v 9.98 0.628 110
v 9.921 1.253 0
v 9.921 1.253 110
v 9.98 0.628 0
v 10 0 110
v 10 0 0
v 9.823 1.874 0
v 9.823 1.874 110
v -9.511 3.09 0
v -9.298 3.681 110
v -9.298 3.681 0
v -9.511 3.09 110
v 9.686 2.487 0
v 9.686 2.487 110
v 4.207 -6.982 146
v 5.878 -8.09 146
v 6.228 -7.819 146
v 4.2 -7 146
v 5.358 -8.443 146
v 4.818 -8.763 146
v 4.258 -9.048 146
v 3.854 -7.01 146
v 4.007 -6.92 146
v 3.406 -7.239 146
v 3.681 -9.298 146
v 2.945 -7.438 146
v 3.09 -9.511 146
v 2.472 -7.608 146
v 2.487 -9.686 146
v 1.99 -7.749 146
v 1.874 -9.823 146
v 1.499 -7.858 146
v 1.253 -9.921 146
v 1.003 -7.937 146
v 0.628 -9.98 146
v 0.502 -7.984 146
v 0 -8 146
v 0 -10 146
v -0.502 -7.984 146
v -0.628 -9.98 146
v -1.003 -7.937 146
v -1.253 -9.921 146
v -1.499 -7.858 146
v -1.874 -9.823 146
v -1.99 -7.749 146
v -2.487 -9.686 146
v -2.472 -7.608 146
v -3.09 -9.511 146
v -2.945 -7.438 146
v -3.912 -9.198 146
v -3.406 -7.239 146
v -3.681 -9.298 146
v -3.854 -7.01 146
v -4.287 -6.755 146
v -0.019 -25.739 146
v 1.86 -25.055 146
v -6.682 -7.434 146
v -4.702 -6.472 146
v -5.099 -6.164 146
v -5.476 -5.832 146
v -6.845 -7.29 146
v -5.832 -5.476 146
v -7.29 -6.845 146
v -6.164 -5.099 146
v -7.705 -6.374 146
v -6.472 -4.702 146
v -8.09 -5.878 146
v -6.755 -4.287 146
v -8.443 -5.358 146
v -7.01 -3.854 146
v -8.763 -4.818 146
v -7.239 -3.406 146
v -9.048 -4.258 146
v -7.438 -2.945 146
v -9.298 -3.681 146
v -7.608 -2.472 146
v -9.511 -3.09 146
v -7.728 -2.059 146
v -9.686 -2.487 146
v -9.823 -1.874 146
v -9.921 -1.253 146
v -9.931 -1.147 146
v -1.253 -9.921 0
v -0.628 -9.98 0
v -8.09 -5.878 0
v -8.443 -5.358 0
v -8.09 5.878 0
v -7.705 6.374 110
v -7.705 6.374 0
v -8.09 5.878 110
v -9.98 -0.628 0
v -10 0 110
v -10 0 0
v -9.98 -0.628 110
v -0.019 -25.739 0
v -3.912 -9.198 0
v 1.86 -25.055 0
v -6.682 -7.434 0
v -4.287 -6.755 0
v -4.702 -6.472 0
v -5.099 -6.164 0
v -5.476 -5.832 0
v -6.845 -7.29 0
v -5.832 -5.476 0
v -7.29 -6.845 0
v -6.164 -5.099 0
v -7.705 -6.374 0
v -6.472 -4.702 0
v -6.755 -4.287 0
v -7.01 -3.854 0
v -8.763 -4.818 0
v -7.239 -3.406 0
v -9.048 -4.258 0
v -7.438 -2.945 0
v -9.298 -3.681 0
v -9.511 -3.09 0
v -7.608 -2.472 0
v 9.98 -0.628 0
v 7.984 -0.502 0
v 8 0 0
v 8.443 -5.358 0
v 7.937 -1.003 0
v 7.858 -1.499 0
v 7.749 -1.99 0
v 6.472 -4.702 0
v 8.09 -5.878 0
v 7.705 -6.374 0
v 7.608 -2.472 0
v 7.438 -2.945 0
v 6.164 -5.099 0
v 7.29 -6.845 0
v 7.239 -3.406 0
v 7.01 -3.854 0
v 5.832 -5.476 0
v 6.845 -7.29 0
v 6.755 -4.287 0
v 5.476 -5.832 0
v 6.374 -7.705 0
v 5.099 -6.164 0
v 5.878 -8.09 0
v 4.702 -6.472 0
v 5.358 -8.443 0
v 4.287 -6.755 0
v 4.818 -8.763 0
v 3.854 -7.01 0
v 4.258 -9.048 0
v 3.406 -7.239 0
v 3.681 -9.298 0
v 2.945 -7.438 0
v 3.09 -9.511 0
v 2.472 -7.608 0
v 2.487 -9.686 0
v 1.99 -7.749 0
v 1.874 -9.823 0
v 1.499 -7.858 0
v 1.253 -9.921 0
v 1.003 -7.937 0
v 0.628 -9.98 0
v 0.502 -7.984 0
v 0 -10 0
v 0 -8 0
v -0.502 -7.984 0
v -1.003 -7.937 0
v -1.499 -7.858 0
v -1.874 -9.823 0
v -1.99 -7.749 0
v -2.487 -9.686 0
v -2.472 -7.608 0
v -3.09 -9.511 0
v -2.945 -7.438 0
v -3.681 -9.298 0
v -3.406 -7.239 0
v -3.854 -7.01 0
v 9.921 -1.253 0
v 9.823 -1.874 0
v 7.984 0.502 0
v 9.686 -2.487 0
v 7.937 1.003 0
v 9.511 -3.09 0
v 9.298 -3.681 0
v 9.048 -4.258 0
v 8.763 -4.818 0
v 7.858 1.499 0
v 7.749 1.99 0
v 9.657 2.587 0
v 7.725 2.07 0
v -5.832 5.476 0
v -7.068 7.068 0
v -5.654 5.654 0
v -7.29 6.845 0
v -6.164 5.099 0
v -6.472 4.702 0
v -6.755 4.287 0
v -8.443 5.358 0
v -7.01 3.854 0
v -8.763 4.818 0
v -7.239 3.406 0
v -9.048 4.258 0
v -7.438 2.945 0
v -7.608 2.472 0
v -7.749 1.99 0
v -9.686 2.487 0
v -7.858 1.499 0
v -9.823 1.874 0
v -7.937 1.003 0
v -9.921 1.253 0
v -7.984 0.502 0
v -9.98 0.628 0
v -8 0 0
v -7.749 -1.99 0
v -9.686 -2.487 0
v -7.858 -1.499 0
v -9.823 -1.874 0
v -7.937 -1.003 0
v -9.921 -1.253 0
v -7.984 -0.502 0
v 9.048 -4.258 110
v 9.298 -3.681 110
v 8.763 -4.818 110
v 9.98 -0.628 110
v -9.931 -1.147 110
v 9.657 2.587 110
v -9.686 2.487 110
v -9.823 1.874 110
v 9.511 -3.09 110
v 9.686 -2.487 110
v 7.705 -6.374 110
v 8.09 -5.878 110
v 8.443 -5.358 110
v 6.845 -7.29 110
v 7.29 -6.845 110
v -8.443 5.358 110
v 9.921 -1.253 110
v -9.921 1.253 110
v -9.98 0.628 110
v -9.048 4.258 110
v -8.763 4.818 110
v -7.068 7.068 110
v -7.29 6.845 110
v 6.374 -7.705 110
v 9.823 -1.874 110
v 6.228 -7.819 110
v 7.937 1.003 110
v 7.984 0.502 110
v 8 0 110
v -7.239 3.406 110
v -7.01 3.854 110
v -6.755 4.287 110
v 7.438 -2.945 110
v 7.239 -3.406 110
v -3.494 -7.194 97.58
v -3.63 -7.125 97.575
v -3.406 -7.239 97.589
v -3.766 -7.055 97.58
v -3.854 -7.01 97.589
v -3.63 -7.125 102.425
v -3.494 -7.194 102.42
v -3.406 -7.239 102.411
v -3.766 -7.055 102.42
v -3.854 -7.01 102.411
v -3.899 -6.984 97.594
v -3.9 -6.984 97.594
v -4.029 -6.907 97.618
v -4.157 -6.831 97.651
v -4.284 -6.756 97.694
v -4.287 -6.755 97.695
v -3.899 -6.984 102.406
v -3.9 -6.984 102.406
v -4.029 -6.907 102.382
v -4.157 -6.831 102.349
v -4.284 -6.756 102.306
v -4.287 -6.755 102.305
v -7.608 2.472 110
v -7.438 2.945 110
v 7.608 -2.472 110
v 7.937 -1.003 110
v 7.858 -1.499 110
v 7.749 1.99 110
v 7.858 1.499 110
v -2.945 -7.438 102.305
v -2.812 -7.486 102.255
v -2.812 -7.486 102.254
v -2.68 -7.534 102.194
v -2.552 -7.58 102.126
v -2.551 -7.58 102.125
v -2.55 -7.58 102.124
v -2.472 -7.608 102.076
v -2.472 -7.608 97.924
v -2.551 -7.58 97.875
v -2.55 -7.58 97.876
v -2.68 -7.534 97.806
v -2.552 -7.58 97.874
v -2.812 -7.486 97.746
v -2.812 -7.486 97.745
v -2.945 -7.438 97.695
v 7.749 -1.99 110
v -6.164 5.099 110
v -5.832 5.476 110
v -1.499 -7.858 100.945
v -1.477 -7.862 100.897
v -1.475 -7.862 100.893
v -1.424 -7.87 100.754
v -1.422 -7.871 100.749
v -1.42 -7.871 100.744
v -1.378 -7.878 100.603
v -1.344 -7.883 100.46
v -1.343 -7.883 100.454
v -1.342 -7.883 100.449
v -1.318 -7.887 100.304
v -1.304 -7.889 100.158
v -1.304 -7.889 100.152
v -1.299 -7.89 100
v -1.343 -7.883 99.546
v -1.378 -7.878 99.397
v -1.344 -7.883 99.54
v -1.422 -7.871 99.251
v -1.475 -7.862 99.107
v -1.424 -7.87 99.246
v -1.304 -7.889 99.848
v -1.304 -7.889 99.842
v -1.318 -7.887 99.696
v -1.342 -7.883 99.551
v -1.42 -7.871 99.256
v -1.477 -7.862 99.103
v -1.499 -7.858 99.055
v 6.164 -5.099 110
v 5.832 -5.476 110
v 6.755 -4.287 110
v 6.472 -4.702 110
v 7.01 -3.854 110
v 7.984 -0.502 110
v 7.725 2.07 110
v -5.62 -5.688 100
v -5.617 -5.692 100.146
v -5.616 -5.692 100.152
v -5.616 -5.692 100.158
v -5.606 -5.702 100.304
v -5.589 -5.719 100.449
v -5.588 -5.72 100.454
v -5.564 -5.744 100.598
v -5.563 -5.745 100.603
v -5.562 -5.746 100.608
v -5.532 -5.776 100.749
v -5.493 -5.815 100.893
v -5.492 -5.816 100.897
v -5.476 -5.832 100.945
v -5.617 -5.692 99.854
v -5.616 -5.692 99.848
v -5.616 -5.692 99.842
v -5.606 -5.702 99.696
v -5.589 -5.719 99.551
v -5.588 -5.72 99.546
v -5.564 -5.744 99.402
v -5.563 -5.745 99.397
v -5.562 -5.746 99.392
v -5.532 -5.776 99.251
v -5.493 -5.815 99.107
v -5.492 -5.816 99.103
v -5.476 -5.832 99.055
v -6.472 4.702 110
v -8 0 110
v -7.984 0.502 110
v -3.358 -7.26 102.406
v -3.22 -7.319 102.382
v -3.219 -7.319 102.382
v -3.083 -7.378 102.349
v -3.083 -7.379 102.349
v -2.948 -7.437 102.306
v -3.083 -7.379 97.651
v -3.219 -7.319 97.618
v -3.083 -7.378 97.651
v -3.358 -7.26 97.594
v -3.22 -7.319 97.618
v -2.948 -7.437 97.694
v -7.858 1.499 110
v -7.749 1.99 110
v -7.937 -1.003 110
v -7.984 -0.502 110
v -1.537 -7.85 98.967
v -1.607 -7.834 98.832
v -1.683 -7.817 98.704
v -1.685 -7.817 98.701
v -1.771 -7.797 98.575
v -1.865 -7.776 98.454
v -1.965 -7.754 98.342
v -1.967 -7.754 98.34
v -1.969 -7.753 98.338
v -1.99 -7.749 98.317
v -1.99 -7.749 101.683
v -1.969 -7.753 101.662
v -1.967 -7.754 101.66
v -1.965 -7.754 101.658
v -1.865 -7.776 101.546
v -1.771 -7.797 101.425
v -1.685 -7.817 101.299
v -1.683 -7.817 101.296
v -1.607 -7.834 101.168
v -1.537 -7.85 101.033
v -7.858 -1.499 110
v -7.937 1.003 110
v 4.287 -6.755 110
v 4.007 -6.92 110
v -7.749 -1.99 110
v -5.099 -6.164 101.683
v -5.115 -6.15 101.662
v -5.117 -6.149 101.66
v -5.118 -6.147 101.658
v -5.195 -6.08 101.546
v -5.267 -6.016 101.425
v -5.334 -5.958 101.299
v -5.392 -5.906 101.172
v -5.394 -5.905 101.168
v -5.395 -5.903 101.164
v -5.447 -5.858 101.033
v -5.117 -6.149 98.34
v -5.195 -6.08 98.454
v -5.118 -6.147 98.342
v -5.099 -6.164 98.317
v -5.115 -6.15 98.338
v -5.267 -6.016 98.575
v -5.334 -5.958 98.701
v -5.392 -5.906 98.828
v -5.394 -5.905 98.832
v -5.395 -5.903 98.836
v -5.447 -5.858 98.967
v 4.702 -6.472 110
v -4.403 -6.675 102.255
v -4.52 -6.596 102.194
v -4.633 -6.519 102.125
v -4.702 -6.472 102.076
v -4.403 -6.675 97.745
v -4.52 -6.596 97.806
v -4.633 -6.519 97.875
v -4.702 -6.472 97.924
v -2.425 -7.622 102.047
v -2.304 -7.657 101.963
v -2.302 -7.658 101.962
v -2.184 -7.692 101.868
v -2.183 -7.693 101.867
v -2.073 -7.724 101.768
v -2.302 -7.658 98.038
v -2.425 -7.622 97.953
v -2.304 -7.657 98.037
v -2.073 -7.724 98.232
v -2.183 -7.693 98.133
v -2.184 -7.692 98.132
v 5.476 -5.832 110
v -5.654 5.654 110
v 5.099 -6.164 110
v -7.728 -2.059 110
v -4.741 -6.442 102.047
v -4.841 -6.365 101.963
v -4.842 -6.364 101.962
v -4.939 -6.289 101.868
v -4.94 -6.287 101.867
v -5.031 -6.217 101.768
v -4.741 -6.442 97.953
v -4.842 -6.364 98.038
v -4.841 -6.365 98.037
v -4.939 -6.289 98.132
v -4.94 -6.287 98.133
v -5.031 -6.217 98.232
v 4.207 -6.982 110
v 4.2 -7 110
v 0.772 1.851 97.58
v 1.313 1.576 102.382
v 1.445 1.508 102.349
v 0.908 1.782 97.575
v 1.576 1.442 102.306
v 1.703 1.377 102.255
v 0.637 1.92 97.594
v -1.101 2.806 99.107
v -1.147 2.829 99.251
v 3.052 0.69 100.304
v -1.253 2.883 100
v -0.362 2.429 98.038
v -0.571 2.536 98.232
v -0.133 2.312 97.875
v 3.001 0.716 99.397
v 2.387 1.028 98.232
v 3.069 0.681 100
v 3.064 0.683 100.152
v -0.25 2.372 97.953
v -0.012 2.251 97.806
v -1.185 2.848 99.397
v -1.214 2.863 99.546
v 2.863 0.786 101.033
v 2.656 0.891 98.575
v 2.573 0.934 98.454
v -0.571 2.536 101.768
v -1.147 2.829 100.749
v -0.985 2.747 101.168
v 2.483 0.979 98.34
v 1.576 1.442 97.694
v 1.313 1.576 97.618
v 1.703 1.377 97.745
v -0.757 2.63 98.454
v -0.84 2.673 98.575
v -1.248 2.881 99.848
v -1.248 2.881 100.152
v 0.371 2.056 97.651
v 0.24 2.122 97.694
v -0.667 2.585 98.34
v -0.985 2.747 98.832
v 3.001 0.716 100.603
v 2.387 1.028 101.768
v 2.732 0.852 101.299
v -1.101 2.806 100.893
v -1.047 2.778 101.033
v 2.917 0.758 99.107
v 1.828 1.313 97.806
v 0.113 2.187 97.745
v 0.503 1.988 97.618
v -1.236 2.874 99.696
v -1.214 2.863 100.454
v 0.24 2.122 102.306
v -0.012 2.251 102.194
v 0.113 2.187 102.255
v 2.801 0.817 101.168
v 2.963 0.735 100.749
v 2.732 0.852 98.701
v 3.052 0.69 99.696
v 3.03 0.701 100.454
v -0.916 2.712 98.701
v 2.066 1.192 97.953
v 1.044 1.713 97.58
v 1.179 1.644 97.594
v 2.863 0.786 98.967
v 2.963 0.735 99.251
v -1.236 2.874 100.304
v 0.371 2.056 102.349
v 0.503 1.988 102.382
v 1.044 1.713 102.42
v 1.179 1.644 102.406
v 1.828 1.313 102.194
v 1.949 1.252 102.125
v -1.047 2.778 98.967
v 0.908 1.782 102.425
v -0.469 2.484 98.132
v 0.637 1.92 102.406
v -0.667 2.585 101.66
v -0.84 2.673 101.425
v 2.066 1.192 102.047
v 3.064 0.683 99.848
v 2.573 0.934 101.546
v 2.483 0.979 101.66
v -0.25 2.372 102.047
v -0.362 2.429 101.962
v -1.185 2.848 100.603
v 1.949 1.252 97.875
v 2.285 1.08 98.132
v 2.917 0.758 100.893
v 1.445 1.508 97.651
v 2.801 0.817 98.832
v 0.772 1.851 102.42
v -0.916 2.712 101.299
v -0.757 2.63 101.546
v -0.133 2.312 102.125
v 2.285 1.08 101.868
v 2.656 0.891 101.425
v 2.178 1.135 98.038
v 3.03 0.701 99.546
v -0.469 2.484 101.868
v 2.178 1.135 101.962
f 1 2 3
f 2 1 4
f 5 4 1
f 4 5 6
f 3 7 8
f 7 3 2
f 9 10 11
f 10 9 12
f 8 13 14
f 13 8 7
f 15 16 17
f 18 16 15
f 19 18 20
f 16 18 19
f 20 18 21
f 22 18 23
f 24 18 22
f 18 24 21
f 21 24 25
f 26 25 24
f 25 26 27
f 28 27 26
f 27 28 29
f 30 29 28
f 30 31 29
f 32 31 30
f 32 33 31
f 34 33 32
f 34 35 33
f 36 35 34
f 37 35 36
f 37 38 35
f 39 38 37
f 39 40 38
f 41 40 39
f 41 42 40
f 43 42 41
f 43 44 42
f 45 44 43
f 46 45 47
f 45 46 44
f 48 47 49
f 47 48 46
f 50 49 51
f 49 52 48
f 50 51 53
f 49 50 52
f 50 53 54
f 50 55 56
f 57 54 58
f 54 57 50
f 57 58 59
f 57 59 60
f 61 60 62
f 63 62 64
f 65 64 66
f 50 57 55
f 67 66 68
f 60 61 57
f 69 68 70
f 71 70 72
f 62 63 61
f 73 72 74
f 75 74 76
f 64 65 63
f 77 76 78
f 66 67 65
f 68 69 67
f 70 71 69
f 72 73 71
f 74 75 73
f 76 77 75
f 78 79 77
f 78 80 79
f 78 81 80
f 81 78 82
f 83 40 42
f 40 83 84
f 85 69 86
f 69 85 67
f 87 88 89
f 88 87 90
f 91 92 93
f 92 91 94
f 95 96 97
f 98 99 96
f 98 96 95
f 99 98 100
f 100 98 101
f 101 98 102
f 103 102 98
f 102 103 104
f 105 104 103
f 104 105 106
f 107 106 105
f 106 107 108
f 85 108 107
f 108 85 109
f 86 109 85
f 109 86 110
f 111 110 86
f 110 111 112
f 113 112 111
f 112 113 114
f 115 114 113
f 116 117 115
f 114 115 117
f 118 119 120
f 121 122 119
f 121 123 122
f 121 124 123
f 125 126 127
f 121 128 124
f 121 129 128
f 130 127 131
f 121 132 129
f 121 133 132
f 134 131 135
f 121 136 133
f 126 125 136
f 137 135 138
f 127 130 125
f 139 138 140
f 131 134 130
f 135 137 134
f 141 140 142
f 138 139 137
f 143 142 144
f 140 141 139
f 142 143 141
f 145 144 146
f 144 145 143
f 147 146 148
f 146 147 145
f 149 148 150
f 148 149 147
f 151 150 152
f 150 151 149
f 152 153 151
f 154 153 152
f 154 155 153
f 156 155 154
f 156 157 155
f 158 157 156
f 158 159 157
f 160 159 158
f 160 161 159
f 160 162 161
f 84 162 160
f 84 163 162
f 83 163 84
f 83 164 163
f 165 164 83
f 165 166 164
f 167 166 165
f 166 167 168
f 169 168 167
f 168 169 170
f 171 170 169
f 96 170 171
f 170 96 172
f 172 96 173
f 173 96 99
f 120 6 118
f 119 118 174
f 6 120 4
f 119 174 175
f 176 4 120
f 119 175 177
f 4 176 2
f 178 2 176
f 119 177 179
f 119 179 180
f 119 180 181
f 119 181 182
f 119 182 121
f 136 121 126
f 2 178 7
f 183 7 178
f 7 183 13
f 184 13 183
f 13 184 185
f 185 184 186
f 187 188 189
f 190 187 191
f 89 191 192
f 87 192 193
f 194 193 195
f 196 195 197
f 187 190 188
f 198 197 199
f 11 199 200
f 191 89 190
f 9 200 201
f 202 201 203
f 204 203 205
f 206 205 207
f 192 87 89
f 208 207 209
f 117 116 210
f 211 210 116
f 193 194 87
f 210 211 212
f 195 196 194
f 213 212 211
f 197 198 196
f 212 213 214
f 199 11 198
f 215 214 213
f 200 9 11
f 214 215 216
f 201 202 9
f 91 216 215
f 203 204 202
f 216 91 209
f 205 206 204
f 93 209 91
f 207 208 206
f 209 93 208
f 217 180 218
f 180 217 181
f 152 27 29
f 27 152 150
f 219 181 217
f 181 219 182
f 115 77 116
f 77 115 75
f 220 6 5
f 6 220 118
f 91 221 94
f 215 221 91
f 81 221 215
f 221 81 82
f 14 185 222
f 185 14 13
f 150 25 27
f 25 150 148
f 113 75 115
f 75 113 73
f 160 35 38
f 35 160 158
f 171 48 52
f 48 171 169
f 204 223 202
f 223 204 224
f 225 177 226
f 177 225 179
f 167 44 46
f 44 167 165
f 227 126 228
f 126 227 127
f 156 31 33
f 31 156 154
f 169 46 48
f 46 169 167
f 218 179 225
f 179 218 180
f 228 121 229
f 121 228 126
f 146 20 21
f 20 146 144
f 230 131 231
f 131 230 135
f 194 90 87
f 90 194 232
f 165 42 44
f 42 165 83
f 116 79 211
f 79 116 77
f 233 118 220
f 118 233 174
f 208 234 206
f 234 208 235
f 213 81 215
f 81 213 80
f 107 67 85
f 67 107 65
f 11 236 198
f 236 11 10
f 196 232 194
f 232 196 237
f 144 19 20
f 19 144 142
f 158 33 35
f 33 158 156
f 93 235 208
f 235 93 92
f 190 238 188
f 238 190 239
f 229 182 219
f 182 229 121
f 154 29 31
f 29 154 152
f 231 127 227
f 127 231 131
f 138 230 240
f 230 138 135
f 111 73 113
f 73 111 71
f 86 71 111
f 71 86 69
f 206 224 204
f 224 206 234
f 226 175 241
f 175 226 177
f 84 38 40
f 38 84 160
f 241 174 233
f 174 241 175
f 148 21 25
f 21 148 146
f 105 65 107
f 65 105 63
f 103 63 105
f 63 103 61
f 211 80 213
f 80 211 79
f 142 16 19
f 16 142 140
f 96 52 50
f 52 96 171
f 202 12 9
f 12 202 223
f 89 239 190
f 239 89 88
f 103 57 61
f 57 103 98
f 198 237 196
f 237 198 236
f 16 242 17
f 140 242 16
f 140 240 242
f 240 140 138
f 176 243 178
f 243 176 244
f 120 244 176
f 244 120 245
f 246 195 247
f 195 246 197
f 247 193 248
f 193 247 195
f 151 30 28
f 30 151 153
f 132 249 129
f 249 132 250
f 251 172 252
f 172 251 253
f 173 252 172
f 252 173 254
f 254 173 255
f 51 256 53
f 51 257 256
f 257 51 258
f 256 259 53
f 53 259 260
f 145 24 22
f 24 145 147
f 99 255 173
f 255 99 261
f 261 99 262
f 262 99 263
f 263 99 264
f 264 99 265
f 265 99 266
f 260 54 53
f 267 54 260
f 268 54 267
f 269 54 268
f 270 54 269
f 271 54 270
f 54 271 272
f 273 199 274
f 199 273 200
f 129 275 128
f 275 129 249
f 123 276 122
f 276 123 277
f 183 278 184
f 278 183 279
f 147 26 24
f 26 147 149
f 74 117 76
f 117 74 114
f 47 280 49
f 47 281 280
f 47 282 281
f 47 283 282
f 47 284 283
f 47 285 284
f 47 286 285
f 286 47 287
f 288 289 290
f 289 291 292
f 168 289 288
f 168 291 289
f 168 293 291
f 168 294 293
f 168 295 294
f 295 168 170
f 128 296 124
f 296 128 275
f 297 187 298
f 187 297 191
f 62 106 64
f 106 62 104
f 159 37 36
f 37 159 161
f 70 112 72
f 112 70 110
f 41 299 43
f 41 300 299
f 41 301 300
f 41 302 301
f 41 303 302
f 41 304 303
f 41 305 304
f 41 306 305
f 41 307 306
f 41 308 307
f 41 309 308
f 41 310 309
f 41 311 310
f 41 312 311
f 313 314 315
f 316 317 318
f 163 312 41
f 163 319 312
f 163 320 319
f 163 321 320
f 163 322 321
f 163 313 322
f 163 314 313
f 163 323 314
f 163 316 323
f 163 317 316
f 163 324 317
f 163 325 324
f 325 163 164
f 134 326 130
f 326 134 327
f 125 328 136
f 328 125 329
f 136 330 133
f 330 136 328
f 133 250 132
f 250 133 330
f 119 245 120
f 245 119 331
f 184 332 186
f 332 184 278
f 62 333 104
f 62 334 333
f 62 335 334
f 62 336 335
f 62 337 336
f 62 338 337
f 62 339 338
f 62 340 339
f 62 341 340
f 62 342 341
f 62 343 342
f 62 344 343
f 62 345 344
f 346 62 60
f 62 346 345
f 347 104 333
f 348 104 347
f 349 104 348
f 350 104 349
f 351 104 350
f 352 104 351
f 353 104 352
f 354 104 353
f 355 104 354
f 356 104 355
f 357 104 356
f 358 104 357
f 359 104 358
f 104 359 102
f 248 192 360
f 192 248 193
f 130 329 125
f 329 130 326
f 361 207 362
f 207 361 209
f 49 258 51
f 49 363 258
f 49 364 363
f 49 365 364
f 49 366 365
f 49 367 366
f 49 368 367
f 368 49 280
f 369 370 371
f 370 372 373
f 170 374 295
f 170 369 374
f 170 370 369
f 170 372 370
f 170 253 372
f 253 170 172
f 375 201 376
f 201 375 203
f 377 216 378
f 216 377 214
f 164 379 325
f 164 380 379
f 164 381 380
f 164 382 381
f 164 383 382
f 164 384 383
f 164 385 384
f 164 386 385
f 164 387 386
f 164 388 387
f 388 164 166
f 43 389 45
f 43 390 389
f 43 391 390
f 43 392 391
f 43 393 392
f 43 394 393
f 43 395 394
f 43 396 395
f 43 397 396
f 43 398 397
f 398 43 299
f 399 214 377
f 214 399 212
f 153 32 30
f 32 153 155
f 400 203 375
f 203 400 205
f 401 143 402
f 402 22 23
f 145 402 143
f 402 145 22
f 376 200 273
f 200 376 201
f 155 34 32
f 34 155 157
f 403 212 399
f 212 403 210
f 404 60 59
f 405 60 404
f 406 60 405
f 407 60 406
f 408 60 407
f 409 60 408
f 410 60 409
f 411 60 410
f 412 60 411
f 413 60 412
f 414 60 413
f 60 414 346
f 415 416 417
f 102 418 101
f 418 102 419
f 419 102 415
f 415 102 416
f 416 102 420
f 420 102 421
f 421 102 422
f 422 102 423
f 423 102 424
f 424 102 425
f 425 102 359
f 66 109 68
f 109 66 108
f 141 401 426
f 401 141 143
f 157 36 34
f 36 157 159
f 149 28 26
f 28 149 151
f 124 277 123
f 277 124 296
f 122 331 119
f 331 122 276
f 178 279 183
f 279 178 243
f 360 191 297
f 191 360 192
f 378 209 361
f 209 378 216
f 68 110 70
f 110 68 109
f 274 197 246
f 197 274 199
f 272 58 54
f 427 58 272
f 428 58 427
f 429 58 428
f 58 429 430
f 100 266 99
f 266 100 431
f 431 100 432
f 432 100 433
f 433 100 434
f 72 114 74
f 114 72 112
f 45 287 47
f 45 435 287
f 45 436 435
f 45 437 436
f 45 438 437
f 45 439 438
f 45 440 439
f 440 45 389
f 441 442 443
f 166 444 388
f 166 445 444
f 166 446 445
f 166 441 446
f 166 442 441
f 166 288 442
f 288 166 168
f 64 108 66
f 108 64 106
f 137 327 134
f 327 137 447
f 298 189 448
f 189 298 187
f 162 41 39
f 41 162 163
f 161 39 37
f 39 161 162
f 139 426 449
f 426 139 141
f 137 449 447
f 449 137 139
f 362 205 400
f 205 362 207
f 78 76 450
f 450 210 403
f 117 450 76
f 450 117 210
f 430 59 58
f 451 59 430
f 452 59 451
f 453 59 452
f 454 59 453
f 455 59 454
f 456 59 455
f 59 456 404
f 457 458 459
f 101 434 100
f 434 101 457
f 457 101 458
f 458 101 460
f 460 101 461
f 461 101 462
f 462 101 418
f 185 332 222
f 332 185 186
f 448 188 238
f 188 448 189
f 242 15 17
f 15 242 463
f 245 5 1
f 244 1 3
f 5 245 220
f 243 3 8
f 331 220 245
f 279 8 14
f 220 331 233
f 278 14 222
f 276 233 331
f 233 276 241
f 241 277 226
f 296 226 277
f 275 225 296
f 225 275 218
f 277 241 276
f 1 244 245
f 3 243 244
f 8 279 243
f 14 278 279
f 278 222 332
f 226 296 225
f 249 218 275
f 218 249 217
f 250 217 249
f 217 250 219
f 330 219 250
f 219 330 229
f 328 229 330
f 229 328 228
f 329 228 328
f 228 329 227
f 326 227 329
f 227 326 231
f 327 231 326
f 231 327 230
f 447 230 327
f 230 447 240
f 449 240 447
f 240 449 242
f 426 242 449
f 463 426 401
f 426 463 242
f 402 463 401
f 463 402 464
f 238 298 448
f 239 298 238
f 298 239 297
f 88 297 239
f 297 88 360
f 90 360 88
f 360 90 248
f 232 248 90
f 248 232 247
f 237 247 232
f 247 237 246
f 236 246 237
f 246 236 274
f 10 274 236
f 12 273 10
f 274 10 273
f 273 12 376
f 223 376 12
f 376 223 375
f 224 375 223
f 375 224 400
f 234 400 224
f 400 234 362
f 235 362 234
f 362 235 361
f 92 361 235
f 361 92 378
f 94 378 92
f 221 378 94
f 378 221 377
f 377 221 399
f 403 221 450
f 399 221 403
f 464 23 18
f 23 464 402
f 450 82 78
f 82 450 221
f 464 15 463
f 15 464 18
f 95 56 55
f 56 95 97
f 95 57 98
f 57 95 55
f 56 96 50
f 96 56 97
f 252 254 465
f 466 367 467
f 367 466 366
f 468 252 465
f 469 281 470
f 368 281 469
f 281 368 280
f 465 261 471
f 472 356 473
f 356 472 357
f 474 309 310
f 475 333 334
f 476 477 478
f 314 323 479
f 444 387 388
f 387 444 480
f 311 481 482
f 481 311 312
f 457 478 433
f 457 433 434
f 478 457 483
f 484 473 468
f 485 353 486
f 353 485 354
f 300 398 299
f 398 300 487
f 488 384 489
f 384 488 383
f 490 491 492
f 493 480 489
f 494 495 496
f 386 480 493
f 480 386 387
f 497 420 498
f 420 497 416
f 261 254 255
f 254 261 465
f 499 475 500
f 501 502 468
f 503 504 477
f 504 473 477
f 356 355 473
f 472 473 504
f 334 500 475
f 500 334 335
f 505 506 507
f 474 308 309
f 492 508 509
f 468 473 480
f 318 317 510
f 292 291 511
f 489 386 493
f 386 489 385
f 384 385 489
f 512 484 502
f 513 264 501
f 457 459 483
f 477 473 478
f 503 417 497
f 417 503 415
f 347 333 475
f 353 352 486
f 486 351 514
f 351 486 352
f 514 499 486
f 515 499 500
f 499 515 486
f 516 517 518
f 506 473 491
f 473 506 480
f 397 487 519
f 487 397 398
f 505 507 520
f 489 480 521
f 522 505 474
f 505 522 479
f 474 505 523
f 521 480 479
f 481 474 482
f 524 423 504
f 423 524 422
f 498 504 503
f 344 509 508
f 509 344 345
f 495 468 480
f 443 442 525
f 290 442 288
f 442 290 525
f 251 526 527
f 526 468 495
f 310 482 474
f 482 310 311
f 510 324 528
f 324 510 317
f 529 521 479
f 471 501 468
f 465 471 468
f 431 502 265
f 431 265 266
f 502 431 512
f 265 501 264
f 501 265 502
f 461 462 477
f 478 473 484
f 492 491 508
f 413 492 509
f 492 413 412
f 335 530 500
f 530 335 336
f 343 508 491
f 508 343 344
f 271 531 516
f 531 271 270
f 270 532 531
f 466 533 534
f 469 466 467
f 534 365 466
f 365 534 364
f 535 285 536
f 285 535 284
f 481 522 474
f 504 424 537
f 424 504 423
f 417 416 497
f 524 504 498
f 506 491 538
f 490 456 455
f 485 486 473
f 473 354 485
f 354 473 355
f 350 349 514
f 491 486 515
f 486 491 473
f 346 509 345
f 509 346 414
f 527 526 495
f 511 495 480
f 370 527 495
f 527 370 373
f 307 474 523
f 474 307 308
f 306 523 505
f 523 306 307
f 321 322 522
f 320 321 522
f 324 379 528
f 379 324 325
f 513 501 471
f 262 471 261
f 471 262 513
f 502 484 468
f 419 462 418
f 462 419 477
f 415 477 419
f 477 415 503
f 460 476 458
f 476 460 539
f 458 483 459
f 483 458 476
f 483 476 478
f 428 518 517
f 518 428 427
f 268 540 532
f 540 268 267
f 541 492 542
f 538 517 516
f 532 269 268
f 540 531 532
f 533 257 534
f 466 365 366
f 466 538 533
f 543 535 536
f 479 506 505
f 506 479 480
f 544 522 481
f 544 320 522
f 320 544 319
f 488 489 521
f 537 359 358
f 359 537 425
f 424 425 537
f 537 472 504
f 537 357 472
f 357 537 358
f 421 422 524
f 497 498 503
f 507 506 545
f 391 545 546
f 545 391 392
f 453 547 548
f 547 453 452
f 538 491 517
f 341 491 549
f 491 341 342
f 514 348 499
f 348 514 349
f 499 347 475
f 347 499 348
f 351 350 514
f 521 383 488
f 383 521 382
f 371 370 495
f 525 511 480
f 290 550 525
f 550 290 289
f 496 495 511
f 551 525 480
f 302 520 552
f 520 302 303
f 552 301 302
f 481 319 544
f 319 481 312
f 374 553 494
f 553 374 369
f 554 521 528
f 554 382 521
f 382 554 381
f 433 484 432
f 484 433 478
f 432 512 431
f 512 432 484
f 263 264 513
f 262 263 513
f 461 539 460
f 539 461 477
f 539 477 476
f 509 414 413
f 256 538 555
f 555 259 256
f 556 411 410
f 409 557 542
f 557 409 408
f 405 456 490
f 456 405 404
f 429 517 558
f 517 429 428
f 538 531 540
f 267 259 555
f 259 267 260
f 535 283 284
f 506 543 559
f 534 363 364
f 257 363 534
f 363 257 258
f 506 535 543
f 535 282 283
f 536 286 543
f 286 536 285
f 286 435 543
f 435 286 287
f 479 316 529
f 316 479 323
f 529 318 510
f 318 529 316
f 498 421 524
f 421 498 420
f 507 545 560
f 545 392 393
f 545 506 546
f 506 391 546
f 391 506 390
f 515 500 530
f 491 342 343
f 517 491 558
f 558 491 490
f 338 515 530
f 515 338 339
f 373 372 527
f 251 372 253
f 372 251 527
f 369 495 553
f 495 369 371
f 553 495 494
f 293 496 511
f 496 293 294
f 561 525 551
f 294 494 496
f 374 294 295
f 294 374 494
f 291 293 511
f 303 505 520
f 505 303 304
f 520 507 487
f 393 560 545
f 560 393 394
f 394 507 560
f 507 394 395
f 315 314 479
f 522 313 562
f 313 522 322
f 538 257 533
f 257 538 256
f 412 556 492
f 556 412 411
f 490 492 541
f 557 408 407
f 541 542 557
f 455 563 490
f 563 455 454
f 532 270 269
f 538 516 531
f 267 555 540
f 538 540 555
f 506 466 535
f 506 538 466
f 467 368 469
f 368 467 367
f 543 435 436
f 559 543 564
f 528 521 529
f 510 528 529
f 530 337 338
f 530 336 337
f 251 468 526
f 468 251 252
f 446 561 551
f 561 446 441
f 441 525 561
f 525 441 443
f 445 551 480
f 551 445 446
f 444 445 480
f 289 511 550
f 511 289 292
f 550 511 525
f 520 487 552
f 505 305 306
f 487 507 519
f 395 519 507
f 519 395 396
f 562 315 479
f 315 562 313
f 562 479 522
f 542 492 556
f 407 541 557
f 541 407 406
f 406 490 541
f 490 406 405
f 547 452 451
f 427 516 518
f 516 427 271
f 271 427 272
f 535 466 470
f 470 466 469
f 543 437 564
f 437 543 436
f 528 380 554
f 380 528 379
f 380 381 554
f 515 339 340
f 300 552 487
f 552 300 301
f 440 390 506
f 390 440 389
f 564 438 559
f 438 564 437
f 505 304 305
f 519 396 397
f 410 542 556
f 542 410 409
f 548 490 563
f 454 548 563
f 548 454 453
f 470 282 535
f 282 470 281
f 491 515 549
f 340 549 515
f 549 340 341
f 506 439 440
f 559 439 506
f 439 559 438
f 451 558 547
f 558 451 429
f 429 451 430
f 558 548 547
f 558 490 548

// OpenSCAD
union(){
    difference() {
        cylinder(h = 146, d = 20, $fn = 100);
        cylinder(h = 146, d = 16, $fn = 100);

        rotate([0, 0, 15]) {
            cube([10, 10, 120]);
        }
        rotate([0, 0, 45]) {
            cube([10, 10, 120]);
        }

        translate([9.2, -9.05, 110]){
            rotate([0, 0, 67.5]) {
                cube([17.4, 17.4, 46]);
            }
        }

        translate([4.2, -7, 110]){
            rotate([0, 0, 67.5]) {
                cube([17.4, 17.4, 46]);
            }
        }
    }

    // Wall
    translate([-2.5, -16, 73]) {
        rotate([0, 0, 110]) {
            cube([20, 2, 146], center = true);
        }
    }

    // Nipple
    translate([0, 0, 100]) {
        rotate([0, 90, 63]) {
            translate([0, 0, -8]) {
            cylinder(h = 10, d = 4.85, $fn = 100);
            }
        }
    }
}
